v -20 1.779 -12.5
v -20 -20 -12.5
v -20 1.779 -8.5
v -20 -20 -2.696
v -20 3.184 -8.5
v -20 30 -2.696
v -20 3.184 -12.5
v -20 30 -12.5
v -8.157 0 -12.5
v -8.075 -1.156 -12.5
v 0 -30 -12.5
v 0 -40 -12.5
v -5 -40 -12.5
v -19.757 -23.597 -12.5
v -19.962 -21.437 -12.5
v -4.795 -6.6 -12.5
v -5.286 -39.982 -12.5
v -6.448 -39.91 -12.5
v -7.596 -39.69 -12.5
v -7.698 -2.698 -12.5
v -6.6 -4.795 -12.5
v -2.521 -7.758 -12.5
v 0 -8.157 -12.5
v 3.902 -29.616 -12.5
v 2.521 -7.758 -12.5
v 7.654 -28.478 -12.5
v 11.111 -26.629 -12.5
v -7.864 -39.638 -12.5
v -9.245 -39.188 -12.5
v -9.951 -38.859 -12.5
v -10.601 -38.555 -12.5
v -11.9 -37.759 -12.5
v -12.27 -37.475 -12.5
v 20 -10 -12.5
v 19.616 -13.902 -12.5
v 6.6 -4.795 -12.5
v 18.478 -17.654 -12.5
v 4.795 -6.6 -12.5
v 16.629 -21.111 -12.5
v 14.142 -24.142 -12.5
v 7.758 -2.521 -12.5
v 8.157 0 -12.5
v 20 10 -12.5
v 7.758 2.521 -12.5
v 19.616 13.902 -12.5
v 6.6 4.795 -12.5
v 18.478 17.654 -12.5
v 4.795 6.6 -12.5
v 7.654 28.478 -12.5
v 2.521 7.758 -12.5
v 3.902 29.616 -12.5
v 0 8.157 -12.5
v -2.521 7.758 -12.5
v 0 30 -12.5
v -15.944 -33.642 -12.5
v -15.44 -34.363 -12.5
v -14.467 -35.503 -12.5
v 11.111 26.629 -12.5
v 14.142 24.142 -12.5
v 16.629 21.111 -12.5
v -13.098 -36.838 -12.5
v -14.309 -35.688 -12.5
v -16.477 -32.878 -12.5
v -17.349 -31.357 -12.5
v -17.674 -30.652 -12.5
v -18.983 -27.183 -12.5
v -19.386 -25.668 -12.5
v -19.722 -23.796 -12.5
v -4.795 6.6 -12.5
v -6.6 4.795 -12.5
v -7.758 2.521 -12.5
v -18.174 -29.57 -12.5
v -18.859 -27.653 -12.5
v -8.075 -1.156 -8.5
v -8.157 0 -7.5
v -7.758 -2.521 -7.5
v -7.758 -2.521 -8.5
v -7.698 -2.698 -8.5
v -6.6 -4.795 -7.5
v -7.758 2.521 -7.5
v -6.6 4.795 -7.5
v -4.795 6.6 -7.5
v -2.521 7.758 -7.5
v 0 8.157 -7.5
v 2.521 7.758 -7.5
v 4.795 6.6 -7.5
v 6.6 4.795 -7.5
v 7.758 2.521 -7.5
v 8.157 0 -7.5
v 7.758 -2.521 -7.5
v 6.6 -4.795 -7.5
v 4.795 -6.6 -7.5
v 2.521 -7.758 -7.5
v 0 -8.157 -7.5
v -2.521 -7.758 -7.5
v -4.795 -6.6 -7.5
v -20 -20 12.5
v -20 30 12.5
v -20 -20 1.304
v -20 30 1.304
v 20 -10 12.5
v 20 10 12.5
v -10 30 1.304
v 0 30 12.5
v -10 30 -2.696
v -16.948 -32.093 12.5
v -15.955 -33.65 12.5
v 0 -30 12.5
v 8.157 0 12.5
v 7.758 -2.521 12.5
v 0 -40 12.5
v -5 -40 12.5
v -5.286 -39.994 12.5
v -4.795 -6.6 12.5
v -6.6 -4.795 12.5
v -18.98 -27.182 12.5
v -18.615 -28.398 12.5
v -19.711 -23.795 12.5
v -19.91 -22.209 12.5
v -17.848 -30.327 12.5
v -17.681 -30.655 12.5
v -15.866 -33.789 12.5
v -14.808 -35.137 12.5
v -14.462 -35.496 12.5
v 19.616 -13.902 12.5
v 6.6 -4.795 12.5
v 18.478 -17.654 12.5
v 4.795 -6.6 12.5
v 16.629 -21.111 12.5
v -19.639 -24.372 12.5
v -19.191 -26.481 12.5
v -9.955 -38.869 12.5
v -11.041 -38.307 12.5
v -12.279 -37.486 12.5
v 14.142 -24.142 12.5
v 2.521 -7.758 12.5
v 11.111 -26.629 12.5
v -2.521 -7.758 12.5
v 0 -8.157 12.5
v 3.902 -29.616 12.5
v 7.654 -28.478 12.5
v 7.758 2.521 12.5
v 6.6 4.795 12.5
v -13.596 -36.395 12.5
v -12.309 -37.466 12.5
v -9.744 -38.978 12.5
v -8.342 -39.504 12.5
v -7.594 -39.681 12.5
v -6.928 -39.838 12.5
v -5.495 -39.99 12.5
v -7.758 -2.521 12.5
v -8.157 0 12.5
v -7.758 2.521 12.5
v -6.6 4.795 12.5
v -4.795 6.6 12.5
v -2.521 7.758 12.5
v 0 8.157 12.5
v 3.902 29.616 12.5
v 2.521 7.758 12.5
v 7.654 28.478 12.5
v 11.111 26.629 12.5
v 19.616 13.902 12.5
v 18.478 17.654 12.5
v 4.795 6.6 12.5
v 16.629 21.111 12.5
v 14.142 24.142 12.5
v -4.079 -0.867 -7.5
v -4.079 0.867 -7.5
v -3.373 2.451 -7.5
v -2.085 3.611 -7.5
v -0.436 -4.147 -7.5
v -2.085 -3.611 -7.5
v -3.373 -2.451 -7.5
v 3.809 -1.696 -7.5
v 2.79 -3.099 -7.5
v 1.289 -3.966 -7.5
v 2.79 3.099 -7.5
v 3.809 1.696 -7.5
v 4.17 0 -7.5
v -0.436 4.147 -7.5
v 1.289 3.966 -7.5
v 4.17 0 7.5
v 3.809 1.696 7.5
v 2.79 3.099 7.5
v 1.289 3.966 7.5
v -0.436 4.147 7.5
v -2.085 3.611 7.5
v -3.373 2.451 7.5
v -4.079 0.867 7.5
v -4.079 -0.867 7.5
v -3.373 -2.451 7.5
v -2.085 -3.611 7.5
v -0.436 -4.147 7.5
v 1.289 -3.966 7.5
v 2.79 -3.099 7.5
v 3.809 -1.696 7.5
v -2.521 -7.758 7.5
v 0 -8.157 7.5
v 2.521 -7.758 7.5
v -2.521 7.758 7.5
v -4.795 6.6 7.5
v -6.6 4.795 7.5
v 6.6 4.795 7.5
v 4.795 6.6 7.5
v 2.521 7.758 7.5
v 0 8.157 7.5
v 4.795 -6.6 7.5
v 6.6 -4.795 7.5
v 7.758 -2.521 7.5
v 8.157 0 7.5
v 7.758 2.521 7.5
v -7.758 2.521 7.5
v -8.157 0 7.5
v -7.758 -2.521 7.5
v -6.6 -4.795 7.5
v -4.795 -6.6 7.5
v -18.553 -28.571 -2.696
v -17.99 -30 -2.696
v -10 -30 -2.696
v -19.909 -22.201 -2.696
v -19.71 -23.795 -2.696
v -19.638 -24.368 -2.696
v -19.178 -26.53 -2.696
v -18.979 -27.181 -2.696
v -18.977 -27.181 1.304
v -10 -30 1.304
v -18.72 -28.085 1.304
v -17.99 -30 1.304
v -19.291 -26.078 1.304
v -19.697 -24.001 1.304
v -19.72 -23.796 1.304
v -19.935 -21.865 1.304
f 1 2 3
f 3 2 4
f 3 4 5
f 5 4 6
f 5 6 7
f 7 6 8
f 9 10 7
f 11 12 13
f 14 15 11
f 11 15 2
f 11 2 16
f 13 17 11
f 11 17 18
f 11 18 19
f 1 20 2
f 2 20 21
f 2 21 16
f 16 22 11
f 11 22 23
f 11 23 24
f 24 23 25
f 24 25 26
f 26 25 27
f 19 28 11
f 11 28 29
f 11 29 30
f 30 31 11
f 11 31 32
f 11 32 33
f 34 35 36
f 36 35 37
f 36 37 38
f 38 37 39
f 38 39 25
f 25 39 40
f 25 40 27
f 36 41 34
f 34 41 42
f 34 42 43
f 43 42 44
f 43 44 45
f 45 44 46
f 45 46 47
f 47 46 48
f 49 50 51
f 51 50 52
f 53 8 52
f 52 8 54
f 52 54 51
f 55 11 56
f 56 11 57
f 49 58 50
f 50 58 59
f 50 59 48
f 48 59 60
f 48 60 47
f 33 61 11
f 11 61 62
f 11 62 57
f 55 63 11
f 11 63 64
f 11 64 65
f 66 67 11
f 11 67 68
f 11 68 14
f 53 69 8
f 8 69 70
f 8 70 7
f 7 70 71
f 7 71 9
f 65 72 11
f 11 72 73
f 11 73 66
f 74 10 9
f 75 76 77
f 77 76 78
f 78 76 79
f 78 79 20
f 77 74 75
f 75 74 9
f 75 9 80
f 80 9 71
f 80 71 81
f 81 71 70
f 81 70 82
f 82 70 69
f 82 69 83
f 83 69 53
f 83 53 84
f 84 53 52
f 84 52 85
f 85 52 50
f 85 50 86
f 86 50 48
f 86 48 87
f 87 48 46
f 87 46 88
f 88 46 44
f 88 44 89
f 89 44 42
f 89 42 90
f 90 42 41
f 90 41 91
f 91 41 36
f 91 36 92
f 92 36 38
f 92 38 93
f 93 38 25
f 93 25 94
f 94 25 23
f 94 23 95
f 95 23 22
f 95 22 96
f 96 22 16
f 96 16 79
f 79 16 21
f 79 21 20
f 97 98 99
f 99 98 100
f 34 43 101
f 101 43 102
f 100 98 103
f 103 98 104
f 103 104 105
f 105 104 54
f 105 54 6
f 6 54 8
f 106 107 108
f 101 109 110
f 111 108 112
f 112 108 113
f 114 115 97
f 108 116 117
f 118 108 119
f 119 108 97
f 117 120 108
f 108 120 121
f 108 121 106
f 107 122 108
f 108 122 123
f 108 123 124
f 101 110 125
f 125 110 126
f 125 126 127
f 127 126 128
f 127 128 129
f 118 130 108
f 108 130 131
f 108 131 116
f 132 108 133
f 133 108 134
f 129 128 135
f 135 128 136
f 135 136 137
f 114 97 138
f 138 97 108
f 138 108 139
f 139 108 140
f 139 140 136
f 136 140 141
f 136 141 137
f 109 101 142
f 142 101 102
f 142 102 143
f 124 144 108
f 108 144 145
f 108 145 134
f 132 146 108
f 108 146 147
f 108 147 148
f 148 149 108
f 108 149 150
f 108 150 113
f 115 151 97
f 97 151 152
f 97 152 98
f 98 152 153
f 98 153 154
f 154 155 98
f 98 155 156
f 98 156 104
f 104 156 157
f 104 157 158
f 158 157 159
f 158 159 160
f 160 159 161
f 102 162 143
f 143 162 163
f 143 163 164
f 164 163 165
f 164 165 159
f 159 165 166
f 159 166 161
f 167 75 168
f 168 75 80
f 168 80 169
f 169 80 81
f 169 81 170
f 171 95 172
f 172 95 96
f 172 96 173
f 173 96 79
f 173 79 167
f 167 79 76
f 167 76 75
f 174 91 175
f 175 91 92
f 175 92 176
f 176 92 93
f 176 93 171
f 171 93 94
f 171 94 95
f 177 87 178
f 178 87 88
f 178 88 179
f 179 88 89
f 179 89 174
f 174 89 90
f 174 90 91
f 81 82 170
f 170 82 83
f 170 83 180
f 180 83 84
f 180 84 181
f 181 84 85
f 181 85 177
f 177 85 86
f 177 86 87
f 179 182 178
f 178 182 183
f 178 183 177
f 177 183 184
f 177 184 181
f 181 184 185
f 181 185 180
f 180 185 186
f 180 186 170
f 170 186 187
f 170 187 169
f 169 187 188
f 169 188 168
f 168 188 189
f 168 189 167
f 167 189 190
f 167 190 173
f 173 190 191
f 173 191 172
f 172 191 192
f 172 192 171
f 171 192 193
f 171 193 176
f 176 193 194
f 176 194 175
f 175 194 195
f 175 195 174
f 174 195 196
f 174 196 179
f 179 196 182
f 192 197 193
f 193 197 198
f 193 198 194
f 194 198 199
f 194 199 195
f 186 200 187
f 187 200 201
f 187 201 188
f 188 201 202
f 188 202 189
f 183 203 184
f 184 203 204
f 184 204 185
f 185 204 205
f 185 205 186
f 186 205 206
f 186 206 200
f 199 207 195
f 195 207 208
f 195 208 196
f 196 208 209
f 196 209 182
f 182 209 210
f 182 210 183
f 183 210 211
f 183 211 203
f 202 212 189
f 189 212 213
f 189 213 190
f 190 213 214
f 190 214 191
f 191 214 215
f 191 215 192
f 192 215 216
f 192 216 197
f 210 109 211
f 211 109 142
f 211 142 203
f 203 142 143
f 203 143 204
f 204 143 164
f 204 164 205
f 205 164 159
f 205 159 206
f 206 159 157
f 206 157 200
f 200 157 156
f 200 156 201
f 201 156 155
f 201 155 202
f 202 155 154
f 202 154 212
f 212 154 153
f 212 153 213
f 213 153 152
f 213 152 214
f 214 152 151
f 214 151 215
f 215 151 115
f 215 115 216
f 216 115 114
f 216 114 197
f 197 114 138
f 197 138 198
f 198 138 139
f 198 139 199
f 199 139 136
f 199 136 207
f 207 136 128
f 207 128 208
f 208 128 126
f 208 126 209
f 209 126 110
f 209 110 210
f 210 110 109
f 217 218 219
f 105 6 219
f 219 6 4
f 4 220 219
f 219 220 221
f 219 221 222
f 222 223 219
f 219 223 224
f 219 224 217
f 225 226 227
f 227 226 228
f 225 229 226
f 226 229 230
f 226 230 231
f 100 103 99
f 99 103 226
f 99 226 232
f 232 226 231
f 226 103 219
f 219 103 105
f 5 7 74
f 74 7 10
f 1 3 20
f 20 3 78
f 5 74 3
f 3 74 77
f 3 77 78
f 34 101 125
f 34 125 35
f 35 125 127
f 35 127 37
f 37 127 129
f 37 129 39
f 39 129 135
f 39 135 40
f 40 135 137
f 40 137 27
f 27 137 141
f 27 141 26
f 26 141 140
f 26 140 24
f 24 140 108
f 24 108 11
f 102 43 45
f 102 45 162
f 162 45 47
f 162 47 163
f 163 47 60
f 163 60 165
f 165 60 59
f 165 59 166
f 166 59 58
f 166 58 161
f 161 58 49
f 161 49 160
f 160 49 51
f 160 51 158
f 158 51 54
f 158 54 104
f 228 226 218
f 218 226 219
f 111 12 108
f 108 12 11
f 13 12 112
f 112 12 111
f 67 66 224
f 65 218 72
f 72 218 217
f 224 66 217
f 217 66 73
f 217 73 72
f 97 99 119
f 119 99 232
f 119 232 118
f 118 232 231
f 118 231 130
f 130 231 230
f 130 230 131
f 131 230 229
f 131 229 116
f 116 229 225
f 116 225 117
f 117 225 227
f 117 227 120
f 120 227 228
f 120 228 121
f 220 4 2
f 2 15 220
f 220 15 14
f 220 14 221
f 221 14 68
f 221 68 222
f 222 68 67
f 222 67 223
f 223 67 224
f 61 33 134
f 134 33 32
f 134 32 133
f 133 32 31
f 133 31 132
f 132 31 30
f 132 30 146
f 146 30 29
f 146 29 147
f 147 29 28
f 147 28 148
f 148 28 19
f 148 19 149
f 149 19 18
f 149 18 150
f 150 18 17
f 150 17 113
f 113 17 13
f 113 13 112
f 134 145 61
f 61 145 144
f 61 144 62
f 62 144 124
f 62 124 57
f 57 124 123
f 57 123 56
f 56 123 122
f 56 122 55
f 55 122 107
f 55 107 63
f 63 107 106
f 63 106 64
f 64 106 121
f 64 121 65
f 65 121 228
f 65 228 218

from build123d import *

# Parameters (mm, degrees)
SKETCH1_W           = 40
SKETCH1_H           = 60
BOSS_EXTRUDE1_DEPTH = 12.5
SKETCH4_W           = 4
SKETCH4_H           = 60
CUT_EXTRUDE1_DEPTH  = 10
CUT_EXTRUDE2_DEPTH  = 4
FILLET1_R           = 20
SKETCH6_W           = 20
SKETCH6_H           = 25
BOSS_EXTRUDE2_DEPTH = 10
FILLET2_SIZE        = 15
FILLET2_SIZE_2      = 20


with BuildPart() as part:
    # Sketch1 → Boss-Extrude1 (new, symmetric)
    with BuildSketch(Plane.XY):
        Rectangle(SKETCH1_W, SKETCH1_H)
    extrude(amount=BOSS_EXTRUDE1_DEPTH, both=True)

    # Sketch3 → Cut-Revolve1 (revolve, cut)
    with BuildSketch(Plane(origin=(0, 0, 0), x_dir=(0, 0, -1), z_dir=(1, 0, 0)), mode=Mode.PRIVATE) as cut_revolve1_sk:
        Polygon((-12.5, -8.157480559), (-7.5, -8.157480559), (-7.5, -4.169784019), (7.5, -4.169784019), (7.5, -8.157480559), (12.5, -8.157480559), (12.5, 0), (-12.5, 0), align=None)
    revolve(cut_revolve1_sk.sketch.rotate(Axis((0, 0, 19.169416837), (0, 0, -1)), 270), axis=Axis((0, 0, 19.169416837), (0, 0, -1)), mode=Mode.SUBTRACT)

    # Sketch4 → Cut-Extrude1 (cut)
    with BuildSketch(Plane.ZY.offset(20)):
        with Locations((-0.695939916, 0)):
            Rectangle(SKETCH4_W, SKETCH4_H)
    extrude(amount=-CUT_EXTRUDE1_DEPTH, mode=Mode.SUBTRACT)

    # Sketch5 → Cut-Extrude2 (cut)
    with BuildSketch(Plane.XY.offset(-12.5)):
        Polygon((0, -5.5), (-20, 1.779404685), (-20, 3.184119345), (0, -4.09528534), align=None)
    extrude(amount=CUT_EXTRUDE2_DEPTH, mode=Mode.SUBTRACT)

    # Fillet1
    fillet1_edges = [part.edges().sort_by_distance(p)[0] for p in [
        (20, 30, 0),
        (20, -30, 0),
    ]]
    fillet(fillet1_edges, radius=FILLET1_R)

    # Sketch6 → Boss-Extrude2 (add)
    with BuildSketch(Plane(origin=(0, -30, 0), x_dir=(1, 0, 0), z_dir=(0, 1, 0))):
        with Locations((-10, 0)):
            Rectangle(SKETCH6_W, SKETCH6_H)
    extrude(amount=-BOSS_EXTRUDE2_DEPTH)

    # Fillet2
    # an asymmetric fillet: 20, 15 mm, written as the material it takes off along each edge
    with BuildSketch(Plane(origin=(-20, -40, -62.5), x_dir=(1, 0, 0), z_dir=(0, 0, 1))) as fillet2_piece_1:
        with BuildLine():
            Bezier((FILLET2_SIZE, 0), (0, 0), (0, FILLET2_SIZE_2), weights=[1, 0.707106781, 1])
            Line((0, FILLET2_SIZE_2), (0, 0))
            Line((0, 0), (FILLET2_SIZE, 0))
        make_face()
    extrude(amount=125, mode=Mode.SUBTRACT)


solid = part.part
